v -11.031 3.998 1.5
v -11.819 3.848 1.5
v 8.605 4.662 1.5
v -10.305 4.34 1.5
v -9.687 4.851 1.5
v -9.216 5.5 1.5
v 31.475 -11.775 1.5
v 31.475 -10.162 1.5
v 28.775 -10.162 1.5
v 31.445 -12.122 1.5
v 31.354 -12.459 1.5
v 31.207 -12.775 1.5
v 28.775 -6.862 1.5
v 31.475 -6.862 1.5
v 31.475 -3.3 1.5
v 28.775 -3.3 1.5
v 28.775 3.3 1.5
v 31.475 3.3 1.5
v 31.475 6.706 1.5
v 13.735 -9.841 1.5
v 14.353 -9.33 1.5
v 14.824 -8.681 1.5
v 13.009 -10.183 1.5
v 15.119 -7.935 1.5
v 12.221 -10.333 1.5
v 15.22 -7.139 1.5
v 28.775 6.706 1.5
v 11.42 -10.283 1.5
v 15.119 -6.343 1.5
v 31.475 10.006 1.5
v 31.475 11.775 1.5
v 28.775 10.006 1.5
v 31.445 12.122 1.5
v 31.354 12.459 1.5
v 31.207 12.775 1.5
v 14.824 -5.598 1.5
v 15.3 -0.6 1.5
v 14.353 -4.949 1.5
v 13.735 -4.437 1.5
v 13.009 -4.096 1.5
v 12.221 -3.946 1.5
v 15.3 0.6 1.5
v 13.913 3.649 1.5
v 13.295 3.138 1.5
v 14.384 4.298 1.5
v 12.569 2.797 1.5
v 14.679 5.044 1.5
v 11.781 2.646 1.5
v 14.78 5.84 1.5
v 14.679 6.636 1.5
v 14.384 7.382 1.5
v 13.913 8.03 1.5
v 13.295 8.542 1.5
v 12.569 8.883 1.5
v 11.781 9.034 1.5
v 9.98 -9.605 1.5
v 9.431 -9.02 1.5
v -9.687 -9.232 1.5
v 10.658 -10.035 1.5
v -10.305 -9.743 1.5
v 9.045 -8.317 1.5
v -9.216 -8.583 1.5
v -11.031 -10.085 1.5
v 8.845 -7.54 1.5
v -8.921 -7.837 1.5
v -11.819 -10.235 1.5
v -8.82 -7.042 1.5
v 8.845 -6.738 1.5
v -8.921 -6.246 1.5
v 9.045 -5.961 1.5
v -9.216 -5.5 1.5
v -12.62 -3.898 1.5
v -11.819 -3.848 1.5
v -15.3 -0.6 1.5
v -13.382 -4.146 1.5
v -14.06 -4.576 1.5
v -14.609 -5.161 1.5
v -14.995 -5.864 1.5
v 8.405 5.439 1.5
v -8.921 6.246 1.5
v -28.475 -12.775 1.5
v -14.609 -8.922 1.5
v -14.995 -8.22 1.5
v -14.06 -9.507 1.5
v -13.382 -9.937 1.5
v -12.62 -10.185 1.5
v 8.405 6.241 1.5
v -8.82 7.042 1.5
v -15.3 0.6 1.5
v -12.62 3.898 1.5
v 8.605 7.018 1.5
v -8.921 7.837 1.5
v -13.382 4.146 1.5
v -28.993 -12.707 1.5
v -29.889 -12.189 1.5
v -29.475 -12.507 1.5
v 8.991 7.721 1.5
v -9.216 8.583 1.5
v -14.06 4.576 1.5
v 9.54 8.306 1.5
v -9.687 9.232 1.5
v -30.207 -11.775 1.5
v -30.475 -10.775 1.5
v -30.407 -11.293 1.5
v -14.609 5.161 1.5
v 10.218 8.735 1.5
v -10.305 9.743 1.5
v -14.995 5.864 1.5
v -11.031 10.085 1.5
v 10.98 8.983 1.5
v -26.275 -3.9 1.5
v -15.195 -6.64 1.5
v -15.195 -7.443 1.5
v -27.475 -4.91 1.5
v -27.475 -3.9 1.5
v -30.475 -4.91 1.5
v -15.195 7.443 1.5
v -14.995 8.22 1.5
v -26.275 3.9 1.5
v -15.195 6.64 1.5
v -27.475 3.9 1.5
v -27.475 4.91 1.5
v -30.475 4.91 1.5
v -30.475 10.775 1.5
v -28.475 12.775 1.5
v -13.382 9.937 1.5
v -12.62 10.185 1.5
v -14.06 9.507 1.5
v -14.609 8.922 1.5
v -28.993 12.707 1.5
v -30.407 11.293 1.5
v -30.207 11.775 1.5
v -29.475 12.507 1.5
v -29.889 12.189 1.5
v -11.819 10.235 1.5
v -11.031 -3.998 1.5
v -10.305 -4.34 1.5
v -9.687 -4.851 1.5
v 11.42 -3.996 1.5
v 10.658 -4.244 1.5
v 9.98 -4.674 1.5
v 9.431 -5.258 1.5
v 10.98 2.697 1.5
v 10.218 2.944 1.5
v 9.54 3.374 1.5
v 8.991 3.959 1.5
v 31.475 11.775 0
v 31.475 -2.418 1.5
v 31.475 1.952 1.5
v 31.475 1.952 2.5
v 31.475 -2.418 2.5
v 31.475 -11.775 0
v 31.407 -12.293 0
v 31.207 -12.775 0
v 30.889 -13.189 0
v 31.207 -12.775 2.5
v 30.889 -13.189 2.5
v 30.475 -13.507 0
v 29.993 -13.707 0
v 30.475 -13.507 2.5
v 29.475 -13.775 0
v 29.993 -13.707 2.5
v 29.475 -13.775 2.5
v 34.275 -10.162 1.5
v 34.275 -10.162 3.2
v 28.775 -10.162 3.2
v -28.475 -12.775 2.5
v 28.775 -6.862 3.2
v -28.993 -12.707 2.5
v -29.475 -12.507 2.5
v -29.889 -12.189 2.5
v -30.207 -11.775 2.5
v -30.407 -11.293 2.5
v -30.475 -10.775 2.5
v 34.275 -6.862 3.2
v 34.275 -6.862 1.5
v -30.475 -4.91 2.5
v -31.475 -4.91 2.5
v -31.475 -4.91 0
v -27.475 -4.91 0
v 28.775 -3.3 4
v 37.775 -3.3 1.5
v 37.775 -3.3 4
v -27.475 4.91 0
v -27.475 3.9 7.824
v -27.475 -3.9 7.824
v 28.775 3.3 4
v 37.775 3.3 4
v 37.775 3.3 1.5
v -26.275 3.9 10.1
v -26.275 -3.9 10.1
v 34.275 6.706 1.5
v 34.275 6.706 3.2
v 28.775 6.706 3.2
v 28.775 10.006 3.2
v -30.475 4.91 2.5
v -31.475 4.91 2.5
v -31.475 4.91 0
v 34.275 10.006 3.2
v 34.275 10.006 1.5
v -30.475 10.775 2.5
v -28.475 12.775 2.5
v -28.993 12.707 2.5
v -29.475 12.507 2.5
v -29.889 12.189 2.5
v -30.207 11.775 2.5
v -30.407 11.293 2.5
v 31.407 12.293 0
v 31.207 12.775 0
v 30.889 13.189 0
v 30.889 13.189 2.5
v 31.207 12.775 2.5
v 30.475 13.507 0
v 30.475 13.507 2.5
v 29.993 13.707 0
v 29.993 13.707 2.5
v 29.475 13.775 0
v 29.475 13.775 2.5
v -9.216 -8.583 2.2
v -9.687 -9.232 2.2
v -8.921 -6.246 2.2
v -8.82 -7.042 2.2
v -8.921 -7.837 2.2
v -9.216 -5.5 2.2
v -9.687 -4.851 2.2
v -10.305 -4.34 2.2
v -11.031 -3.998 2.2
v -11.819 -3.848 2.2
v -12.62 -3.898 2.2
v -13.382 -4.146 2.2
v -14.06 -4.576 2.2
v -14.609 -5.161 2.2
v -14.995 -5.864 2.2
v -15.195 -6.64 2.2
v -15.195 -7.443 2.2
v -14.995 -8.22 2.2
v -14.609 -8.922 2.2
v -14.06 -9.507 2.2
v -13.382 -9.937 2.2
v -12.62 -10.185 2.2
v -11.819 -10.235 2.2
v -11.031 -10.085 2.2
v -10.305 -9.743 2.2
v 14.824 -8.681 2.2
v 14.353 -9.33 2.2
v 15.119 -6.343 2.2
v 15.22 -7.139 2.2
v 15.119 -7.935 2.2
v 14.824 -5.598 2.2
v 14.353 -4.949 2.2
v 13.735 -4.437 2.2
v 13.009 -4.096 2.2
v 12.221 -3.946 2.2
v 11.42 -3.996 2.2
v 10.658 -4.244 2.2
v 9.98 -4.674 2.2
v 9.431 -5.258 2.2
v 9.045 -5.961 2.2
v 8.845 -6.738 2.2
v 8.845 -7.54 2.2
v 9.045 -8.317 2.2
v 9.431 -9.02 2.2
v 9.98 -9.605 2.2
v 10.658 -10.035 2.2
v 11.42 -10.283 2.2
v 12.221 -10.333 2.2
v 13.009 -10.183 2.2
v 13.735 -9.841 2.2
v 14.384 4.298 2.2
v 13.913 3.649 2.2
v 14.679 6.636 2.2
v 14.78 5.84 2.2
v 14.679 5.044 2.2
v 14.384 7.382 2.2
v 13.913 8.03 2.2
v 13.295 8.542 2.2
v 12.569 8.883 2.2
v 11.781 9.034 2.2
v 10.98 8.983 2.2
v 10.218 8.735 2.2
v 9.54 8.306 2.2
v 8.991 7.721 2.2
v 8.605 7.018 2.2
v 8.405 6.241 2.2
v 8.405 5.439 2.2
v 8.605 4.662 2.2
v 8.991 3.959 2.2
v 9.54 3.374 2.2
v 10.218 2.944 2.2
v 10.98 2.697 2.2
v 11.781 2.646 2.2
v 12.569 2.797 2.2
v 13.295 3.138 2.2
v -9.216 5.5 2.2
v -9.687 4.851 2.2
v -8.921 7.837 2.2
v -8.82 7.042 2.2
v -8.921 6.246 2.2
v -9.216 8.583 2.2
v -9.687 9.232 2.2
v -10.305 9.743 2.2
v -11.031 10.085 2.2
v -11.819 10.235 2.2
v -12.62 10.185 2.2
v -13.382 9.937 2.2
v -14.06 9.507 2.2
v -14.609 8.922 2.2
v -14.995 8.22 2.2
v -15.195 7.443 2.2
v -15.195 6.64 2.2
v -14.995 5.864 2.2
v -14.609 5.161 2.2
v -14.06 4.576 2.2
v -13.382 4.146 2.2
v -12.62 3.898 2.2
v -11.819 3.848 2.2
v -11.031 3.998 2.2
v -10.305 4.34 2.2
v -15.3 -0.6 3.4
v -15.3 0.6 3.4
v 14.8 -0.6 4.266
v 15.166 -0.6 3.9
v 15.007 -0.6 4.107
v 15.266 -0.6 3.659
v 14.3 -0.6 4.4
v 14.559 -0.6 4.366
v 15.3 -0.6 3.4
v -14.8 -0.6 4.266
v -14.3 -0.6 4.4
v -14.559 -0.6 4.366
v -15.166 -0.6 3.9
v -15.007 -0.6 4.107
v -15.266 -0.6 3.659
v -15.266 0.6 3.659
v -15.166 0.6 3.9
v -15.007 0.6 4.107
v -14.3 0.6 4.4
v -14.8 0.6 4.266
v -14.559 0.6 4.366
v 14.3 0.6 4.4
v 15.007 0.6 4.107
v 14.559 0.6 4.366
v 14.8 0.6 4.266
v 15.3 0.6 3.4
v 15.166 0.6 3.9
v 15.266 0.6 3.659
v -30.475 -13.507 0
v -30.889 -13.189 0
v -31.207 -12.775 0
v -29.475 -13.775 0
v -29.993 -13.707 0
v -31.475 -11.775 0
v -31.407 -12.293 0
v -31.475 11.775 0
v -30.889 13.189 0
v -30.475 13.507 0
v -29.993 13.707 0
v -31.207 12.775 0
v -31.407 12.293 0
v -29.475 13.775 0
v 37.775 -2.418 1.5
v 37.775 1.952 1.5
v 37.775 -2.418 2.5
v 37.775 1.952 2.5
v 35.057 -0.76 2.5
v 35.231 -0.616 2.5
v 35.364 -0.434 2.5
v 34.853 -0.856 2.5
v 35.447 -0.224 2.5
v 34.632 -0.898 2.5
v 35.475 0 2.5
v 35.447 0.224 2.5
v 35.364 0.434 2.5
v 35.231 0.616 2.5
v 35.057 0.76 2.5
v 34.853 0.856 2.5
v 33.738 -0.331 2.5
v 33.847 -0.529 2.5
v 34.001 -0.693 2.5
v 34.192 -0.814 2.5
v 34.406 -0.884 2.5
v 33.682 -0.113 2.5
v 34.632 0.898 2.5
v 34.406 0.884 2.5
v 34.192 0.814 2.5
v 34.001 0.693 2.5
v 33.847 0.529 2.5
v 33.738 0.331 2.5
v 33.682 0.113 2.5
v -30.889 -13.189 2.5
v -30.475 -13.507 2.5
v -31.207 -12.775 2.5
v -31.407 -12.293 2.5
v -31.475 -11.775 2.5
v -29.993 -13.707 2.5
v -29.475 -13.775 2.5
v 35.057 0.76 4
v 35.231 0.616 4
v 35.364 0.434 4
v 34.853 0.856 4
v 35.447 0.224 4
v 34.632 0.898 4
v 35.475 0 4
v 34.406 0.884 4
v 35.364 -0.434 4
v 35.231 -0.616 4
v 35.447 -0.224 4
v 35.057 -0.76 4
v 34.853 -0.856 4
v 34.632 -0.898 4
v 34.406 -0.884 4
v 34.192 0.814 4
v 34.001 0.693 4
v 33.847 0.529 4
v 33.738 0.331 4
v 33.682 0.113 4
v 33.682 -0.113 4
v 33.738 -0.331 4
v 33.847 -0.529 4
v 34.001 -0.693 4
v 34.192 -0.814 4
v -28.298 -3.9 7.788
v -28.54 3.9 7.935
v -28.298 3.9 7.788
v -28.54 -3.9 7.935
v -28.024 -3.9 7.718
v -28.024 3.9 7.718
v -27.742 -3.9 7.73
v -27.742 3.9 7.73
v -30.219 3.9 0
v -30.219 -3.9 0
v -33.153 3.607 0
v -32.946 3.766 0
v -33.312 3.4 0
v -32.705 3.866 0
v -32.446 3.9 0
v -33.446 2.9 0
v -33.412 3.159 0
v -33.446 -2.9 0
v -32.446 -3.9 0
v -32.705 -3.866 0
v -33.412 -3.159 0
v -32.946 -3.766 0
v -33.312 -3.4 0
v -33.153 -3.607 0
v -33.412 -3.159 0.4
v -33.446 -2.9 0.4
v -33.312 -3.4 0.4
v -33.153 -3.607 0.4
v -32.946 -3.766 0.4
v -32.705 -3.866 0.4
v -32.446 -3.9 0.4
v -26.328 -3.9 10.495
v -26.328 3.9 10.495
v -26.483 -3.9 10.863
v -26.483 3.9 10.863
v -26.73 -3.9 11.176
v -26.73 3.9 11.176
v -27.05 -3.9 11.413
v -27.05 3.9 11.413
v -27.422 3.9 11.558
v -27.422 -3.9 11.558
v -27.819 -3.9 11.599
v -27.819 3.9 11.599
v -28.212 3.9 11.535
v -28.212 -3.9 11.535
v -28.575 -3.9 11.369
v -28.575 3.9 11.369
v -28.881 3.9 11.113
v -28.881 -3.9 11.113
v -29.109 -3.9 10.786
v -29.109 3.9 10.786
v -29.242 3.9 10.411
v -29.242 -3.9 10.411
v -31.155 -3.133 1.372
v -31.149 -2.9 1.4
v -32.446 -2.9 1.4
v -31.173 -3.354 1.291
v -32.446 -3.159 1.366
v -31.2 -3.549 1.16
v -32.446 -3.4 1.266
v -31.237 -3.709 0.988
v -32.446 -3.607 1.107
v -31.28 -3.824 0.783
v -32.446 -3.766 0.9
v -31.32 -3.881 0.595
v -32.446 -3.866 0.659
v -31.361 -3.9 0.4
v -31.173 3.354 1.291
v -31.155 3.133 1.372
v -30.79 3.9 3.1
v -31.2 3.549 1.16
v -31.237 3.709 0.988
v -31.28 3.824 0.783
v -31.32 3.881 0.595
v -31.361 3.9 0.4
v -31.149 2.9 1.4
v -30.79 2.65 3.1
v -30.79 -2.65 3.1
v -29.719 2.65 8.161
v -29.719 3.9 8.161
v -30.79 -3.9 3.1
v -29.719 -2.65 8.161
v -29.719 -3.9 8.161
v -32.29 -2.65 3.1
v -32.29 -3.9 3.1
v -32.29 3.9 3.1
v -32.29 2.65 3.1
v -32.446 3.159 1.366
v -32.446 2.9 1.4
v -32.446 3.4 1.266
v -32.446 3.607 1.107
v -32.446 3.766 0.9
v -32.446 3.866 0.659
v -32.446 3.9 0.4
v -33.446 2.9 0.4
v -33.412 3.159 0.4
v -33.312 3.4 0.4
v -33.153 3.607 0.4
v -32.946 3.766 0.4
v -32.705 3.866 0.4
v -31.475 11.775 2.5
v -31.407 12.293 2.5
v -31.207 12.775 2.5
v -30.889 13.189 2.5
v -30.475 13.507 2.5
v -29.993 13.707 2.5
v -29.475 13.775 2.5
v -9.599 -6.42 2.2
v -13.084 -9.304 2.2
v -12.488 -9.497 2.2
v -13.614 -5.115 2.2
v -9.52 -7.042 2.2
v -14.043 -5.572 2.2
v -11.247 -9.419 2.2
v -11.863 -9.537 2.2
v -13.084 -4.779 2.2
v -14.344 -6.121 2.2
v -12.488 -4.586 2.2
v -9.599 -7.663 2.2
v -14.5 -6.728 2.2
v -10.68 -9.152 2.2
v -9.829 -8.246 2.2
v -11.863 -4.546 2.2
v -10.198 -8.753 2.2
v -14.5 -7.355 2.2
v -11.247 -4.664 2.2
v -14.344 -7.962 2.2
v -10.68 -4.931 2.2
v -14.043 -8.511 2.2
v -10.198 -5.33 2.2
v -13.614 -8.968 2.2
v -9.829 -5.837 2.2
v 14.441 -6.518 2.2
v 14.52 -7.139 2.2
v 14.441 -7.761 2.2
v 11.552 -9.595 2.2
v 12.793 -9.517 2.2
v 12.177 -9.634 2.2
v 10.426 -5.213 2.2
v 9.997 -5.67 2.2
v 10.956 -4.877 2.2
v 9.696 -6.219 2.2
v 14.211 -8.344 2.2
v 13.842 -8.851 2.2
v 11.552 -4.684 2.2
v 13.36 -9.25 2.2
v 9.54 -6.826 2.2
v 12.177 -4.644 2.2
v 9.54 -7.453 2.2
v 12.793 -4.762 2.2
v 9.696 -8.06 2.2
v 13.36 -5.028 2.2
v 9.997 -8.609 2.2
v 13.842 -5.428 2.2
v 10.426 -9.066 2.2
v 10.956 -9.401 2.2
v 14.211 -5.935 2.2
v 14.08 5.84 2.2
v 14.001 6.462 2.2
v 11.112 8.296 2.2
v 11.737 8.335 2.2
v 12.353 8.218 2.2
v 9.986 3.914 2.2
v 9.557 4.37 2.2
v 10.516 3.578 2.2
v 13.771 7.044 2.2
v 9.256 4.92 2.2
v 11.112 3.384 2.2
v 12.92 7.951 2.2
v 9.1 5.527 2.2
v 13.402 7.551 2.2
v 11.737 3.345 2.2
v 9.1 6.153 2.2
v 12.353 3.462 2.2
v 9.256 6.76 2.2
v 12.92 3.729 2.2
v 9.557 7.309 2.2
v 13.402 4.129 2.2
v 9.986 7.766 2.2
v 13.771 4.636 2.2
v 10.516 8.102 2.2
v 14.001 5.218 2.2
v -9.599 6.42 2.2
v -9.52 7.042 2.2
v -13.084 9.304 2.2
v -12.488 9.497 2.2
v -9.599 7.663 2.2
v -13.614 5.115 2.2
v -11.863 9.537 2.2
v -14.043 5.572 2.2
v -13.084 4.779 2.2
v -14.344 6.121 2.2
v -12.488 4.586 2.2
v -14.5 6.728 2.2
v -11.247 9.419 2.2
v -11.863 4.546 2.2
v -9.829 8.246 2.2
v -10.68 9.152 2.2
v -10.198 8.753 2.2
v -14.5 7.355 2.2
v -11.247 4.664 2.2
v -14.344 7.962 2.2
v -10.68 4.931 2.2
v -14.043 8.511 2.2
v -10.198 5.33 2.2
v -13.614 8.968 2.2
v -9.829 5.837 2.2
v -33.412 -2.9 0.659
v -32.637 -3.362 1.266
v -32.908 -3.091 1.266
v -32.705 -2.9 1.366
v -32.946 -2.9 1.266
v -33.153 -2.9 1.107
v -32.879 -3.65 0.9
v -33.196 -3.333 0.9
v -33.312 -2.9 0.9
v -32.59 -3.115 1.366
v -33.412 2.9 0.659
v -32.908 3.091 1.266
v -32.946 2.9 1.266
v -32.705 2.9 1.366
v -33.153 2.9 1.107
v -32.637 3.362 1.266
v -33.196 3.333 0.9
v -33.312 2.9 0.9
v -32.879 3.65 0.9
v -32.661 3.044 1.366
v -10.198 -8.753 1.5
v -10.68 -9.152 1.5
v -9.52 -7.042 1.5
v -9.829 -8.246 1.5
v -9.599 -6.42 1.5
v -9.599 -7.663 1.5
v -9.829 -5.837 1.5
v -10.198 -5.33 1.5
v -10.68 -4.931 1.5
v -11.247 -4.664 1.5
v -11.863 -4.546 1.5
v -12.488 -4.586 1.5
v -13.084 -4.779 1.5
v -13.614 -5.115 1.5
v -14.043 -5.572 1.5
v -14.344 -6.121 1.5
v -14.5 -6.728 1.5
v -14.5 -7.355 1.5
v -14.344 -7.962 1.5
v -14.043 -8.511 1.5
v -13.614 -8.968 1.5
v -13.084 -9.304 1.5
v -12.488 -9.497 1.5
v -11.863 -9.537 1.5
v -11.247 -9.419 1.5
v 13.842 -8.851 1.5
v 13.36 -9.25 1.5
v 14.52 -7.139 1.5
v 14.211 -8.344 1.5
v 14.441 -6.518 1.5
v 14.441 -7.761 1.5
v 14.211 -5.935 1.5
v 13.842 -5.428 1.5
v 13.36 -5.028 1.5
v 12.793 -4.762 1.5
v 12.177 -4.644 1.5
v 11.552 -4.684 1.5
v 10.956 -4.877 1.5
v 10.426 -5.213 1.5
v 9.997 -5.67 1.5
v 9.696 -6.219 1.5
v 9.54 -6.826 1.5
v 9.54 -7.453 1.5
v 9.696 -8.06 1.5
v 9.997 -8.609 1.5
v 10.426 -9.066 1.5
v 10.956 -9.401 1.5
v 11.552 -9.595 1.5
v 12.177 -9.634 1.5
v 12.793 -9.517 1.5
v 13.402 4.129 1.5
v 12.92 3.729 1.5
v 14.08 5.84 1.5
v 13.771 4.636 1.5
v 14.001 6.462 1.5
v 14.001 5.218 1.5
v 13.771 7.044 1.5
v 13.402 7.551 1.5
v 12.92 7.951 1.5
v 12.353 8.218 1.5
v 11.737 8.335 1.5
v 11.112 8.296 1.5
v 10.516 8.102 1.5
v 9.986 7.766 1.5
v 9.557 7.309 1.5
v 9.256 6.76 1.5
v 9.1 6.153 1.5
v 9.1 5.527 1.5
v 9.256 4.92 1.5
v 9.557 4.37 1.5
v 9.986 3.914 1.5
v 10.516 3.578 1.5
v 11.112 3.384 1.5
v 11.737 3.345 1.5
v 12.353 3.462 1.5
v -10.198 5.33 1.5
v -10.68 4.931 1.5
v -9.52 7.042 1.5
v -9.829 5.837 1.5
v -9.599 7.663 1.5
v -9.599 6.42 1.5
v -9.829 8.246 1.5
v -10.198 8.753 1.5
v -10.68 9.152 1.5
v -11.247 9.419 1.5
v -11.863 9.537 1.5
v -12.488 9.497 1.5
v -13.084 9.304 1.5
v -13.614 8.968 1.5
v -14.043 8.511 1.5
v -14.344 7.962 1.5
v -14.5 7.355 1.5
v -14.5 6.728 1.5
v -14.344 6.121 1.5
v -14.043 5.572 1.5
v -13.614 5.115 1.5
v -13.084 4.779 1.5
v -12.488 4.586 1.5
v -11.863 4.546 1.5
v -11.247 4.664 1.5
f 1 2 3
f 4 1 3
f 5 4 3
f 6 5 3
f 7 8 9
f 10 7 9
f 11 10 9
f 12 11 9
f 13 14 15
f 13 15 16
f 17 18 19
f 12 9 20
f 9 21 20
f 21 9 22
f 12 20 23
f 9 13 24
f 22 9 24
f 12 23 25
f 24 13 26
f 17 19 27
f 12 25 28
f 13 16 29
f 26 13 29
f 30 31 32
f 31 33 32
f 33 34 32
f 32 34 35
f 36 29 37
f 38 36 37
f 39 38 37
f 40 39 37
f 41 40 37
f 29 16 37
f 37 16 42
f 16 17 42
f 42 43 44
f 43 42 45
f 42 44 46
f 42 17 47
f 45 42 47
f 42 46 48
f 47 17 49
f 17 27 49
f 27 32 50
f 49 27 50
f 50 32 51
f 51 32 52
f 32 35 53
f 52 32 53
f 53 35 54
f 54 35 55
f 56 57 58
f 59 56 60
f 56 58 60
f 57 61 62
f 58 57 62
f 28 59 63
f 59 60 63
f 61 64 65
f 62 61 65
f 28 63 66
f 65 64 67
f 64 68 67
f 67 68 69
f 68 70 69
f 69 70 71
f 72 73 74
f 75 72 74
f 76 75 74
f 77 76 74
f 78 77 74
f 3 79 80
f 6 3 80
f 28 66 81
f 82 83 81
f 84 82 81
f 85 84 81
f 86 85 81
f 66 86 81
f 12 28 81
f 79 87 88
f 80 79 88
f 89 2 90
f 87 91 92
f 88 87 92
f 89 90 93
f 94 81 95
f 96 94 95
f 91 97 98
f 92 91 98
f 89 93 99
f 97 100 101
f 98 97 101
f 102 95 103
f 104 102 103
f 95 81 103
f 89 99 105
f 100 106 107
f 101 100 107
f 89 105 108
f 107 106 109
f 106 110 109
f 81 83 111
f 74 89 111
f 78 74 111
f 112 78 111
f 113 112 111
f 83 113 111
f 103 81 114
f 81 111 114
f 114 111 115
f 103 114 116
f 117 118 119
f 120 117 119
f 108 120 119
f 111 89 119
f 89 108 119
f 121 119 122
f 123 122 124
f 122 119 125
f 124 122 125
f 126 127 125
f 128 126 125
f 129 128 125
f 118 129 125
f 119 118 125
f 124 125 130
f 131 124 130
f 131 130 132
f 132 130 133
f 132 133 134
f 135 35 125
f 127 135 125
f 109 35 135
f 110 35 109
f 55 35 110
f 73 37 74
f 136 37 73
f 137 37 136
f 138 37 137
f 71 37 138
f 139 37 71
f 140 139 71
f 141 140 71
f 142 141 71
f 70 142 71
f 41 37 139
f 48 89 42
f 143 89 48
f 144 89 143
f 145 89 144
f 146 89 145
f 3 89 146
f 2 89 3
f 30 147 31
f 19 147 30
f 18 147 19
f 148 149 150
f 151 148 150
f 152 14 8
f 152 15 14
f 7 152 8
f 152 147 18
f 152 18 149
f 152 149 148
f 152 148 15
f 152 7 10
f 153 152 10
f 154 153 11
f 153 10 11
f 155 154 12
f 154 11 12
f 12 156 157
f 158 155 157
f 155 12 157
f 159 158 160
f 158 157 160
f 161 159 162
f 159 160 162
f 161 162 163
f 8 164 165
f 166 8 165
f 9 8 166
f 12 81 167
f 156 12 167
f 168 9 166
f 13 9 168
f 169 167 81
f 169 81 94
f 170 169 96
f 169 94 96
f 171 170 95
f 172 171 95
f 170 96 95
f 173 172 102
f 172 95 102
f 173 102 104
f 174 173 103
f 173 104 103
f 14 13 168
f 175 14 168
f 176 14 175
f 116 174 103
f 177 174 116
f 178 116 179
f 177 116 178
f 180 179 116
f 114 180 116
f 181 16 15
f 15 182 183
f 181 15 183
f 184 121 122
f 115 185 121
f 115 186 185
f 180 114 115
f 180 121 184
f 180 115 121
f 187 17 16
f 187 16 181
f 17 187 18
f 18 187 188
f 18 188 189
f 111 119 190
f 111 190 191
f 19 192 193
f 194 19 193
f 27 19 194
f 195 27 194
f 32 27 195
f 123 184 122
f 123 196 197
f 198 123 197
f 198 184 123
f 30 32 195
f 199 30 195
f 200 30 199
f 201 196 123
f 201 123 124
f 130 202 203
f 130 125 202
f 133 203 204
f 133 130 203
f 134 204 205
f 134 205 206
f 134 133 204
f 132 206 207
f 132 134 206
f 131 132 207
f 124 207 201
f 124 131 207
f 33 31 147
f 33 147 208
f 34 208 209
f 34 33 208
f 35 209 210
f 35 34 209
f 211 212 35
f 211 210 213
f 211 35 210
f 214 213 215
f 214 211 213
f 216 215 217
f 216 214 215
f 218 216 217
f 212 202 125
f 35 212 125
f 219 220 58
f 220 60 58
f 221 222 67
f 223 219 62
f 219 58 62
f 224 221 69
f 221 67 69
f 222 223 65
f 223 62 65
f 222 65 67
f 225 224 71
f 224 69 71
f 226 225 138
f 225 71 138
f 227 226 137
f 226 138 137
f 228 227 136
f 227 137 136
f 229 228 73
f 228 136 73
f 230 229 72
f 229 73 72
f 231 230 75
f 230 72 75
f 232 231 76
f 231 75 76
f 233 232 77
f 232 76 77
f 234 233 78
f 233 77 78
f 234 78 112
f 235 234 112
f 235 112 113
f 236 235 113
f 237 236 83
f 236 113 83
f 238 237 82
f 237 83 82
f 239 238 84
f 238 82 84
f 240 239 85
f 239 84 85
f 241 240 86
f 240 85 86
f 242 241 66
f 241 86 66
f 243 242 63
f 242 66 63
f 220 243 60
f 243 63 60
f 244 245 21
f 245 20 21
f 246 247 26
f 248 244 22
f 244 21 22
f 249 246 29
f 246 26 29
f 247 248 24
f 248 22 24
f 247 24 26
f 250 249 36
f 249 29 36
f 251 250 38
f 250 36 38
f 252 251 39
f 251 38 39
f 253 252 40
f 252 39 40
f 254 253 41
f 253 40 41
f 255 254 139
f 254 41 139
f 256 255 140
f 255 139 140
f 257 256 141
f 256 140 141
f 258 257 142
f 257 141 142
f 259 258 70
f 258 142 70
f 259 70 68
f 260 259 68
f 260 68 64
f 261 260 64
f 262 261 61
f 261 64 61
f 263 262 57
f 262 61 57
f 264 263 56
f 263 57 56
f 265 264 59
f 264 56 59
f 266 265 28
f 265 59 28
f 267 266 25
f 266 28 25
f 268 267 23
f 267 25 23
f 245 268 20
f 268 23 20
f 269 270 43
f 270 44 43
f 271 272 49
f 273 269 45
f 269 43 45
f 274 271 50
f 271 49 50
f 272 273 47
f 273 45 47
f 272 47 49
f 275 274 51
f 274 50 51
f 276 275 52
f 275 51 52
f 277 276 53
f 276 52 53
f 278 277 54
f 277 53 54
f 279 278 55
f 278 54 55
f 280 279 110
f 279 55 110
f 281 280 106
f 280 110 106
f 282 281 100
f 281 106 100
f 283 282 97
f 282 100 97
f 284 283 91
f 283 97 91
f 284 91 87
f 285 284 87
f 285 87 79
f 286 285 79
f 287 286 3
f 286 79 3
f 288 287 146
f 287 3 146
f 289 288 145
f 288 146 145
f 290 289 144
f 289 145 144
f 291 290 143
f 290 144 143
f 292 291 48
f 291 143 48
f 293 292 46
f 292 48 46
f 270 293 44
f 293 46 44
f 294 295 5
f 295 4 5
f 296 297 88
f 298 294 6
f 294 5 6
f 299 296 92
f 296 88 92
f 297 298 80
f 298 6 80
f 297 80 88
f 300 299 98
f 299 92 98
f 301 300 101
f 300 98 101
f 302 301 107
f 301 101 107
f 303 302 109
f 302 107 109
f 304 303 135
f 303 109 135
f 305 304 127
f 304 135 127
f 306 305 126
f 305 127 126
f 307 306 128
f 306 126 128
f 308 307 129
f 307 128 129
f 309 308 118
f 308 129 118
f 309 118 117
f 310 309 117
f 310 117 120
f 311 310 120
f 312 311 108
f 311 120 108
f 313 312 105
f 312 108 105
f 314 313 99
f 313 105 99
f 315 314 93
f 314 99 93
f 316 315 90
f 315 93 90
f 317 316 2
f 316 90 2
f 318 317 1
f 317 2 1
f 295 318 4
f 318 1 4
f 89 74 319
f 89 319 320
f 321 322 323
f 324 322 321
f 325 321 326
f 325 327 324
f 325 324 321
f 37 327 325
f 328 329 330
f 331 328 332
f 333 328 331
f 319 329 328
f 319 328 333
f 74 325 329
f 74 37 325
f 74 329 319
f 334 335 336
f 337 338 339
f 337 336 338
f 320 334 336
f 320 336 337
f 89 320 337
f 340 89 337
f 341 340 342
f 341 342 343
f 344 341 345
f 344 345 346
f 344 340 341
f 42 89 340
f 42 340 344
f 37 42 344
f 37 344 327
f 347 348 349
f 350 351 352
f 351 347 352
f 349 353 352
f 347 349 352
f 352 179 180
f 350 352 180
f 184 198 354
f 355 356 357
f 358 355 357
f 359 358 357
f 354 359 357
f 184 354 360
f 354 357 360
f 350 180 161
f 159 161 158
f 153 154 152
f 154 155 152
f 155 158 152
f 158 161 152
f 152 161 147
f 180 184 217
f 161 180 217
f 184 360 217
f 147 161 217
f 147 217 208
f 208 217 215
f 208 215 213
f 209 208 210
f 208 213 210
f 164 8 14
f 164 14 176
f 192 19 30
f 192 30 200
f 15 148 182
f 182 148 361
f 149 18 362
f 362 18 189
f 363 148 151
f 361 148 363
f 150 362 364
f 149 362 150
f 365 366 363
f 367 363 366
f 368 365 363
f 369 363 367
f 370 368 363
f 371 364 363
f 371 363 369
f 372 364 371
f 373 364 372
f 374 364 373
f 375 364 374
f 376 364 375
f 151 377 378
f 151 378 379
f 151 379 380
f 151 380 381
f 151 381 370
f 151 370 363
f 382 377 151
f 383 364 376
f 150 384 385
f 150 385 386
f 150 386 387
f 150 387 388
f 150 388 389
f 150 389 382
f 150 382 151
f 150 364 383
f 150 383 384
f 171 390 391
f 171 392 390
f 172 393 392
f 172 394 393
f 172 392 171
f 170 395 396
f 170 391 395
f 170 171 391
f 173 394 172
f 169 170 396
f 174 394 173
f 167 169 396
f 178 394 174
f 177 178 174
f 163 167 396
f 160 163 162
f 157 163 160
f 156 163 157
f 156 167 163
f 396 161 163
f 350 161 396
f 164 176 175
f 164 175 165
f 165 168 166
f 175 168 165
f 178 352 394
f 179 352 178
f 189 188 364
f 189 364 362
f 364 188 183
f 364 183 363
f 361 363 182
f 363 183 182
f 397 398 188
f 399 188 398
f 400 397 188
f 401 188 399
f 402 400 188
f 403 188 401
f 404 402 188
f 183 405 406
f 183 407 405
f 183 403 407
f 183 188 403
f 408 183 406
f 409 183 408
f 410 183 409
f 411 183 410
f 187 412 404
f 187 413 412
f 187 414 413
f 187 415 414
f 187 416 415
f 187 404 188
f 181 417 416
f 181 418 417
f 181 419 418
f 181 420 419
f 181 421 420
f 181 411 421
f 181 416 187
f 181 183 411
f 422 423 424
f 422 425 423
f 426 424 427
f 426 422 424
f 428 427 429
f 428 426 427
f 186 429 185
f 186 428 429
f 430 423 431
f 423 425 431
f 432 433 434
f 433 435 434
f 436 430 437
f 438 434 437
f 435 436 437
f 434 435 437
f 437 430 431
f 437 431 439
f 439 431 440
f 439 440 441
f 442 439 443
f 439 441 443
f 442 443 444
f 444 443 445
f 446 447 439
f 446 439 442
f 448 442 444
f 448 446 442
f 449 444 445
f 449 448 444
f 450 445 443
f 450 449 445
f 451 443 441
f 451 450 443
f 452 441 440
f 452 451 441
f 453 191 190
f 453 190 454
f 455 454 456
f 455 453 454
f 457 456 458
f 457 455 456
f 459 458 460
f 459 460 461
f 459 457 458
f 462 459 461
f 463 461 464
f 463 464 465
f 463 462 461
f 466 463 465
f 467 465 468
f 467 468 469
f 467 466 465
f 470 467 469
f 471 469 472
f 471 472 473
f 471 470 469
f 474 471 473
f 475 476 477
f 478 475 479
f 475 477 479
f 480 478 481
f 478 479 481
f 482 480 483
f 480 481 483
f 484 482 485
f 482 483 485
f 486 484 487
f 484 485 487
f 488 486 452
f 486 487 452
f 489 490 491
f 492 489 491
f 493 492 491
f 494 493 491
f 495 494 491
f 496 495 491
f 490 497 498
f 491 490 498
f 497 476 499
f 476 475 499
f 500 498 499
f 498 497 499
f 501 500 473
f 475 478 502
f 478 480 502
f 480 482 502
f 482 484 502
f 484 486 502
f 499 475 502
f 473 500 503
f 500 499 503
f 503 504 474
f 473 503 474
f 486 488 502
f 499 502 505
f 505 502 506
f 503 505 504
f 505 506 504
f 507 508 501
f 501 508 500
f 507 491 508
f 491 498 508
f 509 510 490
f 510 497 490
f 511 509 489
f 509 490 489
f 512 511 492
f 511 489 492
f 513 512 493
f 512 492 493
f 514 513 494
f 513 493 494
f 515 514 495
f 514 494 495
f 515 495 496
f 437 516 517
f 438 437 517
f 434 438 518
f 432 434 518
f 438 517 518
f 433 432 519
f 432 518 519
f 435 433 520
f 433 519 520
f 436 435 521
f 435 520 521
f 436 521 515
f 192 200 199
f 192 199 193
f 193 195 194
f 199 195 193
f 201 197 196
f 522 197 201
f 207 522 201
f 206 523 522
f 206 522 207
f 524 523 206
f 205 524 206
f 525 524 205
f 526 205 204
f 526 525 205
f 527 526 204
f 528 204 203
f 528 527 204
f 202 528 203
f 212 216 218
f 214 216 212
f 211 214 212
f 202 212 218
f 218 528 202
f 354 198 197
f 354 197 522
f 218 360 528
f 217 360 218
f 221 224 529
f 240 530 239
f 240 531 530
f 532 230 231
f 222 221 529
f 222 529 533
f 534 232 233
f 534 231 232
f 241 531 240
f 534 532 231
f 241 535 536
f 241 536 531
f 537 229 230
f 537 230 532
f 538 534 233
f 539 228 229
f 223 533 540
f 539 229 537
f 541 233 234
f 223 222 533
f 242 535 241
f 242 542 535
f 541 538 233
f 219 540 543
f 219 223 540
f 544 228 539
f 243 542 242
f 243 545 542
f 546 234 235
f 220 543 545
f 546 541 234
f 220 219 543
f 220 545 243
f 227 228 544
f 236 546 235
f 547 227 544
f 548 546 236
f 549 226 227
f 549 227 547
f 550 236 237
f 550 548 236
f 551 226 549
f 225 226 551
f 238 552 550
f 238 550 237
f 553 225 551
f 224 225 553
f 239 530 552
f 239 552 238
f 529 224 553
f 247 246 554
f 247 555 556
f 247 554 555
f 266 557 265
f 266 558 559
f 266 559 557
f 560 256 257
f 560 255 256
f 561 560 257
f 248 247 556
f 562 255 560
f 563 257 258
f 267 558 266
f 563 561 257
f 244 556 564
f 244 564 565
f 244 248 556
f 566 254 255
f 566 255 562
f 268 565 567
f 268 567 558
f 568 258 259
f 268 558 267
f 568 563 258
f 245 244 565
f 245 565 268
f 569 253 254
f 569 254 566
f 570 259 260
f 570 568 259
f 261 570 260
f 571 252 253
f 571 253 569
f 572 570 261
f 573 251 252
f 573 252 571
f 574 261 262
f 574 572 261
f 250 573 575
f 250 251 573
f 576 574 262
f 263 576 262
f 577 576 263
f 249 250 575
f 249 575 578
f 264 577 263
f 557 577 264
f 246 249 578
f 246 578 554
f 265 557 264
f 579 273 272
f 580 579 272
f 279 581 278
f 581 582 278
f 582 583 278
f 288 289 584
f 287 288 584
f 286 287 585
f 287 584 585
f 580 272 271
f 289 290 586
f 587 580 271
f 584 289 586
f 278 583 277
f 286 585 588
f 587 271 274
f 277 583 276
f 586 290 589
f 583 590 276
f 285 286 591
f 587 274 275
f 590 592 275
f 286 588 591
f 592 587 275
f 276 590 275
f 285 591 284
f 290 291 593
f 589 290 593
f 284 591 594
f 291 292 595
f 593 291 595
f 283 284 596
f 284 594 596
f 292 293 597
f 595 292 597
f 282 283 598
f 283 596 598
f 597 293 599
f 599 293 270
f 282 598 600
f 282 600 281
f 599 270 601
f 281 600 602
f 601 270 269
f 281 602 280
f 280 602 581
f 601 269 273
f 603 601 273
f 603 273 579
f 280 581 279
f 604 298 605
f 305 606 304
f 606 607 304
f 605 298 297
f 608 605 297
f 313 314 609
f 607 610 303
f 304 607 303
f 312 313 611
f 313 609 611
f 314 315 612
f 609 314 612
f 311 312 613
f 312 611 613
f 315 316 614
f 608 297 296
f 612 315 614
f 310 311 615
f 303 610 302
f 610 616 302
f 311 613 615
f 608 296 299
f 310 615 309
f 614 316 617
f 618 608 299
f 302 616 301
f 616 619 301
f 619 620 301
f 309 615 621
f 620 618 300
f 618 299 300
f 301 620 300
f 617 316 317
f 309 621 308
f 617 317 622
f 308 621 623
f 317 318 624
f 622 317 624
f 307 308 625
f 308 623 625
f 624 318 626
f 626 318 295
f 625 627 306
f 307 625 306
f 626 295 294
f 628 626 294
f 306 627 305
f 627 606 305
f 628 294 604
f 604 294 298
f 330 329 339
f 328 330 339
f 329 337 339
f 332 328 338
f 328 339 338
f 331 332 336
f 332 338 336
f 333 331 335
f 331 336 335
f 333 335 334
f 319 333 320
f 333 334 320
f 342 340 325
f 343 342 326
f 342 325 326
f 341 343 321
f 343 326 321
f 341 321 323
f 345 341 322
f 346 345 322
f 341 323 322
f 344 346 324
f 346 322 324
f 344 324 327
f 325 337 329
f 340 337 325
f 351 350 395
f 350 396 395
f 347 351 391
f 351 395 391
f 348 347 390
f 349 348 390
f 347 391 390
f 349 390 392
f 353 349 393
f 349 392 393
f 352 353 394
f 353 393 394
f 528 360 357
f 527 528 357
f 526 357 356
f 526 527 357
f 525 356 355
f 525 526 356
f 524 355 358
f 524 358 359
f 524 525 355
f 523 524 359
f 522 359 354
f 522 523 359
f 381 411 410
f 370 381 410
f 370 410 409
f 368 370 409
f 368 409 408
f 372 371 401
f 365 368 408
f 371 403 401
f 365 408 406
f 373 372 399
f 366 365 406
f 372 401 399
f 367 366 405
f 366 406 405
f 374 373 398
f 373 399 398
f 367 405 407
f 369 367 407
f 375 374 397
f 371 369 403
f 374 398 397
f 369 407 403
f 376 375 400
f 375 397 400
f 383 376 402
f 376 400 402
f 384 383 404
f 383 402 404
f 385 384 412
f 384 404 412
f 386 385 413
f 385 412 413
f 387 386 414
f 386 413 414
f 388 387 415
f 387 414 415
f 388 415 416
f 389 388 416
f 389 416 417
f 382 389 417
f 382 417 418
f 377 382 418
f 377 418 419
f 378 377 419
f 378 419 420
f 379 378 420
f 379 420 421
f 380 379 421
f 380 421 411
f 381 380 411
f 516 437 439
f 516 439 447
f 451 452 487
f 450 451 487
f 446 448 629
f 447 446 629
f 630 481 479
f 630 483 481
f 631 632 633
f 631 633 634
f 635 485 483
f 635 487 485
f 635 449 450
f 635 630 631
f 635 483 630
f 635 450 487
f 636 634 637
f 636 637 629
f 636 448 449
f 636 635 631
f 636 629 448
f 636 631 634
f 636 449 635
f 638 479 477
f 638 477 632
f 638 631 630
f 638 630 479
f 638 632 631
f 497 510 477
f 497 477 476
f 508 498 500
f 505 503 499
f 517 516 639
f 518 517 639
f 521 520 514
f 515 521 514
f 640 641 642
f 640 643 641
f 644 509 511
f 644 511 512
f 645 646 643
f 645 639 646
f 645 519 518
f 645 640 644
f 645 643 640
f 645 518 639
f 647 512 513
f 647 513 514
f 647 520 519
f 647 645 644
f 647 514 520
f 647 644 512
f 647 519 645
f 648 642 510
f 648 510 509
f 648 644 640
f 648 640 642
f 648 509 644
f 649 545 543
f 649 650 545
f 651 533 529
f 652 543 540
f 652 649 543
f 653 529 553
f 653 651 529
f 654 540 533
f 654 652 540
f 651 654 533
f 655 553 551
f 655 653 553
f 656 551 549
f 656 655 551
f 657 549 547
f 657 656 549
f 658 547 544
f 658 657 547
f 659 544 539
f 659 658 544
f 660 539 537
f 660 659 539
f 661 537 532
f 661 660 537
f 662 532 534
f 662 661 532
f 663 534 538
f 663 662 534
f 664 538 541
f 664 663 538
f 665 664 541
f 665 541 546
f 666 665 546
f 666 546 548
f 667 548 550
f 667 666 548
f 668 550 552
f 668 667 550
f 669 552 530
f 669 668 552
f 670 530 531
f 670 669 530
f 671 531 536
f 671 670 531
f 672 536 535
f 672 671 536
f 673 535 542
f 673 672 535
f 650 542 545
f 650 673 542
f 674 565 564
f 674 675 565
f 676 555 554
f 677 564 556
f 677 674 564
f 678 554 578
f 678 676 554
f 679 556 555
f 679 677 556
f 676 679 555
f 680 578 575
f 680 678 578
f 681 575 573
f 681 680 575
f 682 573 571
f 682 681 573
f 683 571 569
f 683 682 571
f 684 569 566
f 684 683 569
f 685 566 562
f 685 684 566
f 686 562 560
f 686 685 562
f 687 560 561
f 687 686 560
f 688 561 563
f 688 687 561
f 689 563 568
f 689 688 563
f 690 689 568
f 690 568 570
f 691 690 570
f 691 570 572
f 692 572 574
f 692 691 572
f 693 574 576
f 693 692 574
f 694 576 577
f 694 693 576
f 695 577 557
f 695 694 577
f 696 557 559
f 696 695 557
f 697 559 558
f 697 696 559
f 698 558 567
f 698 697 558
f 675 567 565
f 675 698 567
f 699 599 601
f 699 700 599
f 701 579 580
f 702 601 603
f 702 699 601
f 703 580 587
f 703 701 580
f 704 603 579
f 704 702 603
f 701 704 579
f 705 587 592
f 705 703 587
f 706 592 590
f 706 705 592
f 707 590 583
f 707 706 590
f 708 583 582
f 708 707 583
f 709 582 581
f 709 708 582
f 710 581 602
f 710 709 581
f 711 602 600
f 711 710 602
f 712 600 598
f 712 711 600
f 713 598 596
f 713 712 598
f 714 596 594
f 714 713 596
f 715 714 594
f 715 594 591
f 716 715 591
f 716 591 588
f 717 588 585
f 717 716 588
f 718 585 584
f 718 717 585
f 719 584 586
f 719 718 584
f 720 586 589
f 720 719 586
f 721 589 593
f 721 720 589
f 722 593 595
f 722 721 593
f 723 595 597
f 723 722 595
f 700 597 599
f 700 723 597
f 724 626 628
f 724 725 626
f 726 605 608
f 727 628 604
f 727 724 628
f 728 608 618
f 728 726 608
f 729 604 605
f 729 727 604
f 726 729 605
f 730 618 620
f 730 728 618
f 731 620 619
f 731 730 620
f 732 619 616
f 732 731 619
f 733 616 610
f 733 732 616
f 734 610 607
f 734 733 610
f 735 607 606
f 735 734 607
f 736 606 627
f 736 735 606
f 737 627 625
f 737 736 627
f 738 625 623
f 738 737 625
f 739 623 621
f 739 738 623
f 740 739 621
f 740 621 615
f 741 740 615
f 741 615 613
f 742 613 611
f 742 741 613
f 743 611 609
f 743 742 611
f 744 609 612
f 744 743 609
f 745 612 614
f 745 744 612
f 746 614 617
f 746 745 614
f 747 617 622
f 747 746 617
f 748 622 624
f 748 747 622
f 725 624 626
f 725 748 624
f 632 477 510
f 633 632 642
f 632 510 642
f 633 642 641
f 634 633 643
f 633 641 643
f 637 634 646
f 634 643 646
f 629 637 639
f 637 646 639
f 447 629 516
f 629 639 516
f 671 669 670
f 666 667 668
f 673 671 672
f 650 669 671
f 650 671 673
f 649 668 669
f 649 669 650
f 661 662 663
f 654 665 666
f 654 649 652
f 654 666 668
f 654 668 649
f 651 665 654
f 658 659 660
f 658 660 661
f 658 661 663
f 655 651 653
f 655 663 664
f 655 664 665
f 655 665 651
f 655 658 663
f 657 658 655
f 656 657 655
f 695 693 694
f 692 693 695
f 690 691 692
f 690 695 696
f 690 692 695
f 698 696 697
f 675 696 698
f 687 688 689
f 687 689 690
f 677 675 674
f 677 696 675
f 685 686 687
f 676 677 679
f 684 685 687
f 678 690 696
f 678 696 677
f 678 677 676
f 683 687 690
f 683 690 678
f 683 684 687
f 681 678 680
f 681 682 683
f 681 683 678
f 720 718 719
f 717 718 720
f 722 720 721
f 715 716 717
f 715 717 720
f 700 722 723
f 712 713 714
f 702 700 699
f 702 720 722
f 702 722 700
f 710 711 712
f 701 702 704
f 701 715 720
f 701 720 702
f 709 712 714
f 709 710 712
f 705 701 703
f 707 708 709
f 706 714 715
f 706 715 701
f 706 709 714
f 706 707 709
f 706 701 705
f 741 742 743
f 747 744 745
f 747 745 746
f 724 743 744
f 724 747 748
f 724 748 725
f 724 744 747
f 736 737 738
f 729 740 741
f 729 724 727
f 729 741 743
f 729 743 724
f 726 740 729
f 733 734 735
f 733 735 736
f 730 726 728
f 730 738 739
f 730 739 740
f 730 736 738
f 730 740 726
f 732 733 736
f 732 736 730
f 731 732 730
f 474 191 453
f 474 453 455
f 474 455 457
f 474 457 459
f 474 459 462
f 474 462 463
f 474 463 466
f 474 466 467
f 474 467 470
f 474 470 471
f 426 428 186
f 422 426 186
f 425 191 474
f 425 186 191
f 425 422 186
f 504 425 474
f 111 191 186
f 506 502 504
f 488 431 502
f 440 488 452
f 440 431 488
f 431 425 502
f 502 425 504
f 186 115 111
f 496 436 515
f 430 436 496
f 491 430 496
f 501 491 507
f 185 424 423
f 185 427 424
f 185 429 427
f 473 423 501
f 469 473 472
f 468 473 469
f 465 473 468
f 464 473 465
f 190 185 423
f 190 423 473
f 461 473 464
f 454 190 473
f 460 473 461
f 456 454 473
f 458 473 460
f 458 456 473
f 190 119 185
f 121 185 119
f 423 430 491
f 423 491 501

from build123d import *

# Parameters (mm, degrees)
SKETCH_W        = 62.95
SKETCH_H        = 27.55
PAD_DEPTH       = 2.5
SKETCH001_W     = 60.95
SKETCH001_H     = 25.55
POCKET_DEPTH    = 1
SKETCH002_W     = 8.33494
SKETCH002_H     = 9.82
POCKET001_DEPTH = 5
SKETCH003_W     = 25.55
SKETCH003_H     = 4.198582
POCKET002_DEPTH = 5
SKETCH004_W     = 5.5
SKETCH004_H     = 3.3
SKETCH004_W_2   = 9
SKETCH004_H_2   = 6.6
PAD001_DEPTH    = 1.7
SKETCH005_W     = 9
SKETCH005_H     = 6.6
PAD002_DEPTH    = 1.5
SKETCH006_W     = 11.41477
SKETCH006_H     = 4.37
POCKET003_DEPTH = 1
SKETCH007_R     = 0.9
POCKET004_DEPTH = 5
FILLET_R        = 2
FILLET001_R     = 2
SKETCH008_W     = 30.6
SKETCH008_H     = 1.2
PAD003_DEPTH    = 2.9
FILLET002_R     = 1
SKETCH009_R     = 3.2
SKETCH009_R_2   = 2.5
PAD004_DEPTH    = 1.2
SKETCH010_W     = 1.2
SKETCH010_H     = 9.82
PAD005_DEPTH    = 8.6
PAD006_DEPTH    = 9.8
SKETCH012_W     = 1.01
SKETCH012_H     = 12.1592368492
POCKET005_DEPTH = 5
SKETCH013_W     = 1.919350973
SKETCH013_H     = 0.99
SKETCH013_W_2   = 2.016565973
SKETCH013_H_2   = 1.01
POCKET006_DEPTH = 5
SKETCH014_W     = 3.22658
SKETCH014_H     = 1.4
PAD007_DEPTH    = 7.8
FILLET003_R     = 1
FILLET004_R     = 1
PAD008_DEPTH    = 7.8
SKETCH016_W     = 5.3
SKETCH016_H     = 6.908861
POCKET007_DEPTH = 5
SKETCH017_W     = 7.346396
SKETCH017_H     = 1.27086
POCKET008_DEPTH = 12
FILLET005_R     = 2
FILLET006_R     = 2
SKETCH018_W     = 8.422166
SKETCH018_H     = 10.199767
POCKET009_DEPTH = 31
SKETCH019_R     = 1.5
PAD009_DEPTH    = 7.8
SKETCH020_W     = 10.078106
SKETCH020_H     = 1.351365
POCKET010_DEPTH = 17.076
SKETCH021_R     = 0.9644956182
PAD010_DEPTH    = 7.8


with BuildPart() as part:
    # Sketch → Pad (new body)
    with BuildSketch(Plane.XY):
        Rectangle(SKETCH_W, SKETCH_H)
    extrude(amount=PAD_DEPTH)

    # Sketch001 → Pocket (cut)
    with BuildSketch(Plane.XY.offset(2.5)):
        Rectangle(SKETCH001_W, SKETCH001_H)
    extrude(amount=-POCKET_DEPTH, mode=Mode.SUBTRACT)

    # Sketch002 → Pocket001 (cut)
    with BuildSketch(Plane(origin=(0, 0, 0), x_dir=(1, 0, 0), z_dir=(0, 0, -1))):
        with Locations((-31.64247, 0)):
            Rectangle(SKETCH002_W, SKETCH002_H)
    extrude(amount=-POCKET001_DEPTH, mode=Mode.SUBTRACT)

    # Sketch003 → Pocket002 (cut)
    with BuildSketch(Plane(origin=(30.475, 0, 0), x_dir=(0, -1, 0), z_dir=(-1, 0, 0))):
        with Locations((0, 3.599291)):
            Rectangle(SKETCH003_W, SKETCH003_H)
    extrude(amount=-POCKET002_DEPTH, mode=Mode.SUBTRACT)

    # Sketch004 → Pad001 (new body)
    with BuildSketch(Plane.XY.offset(1.5)):
        with Locations((31.525, 8.3558943219)):
            Rectangle(SKETCH004_W, SKETCH004_H)
        with Locations((31.525, -8.5122186382)):
            Rectangle(SKETCH004_W, SKETCH004_H)
        with Locations((33.275, 0)):
            Rectangle(SKETCH004_W_2, SKETCH004_H_2)
    extrude(amount=PAD001_DEPTH)

    # Sketch005 → Pad002 (new body)
    with BuildSketch(Plane.XY.offset(3.2)):
        with Locations((33.275, 0)):
            Rectangle(SKETCH005_W, SKETCH005_H)
    extrude(amount=PAD002_DEPTH)

    # Sketch006 → Pocket003 (cut)
    with BuildSketch(Plane(origin=(0, 0, 1.5), x_dir=(1, 0, 0), z_dir=(0, 0, -1))):
        with Locations((37.182385, 0.2334771648)):
            Rectangle(SKETCH006_W, SKETCH006_H)
    extrude(amount=-POCKET003_DEPTH, mode=Mode.SUBTRACT)

    # Sketch007 → Pocket004 (cut)
    with BuildSketch(Plane.XY.offset(4.7)):
        with Locations((34.575, 0)):
            Circle(SKETCH007_R)
    extrude(amount=-POCKET004_DEPTH, mode=Mode.SUBTRACT)

    # Fillet
    fillet_edges = [part.edges().sort_by_distance(p)[0] for p in [
        (-31.475, 13.775, 1.25),
        (-31.475, -13.775, 1.25),
    ]]
    fillet(fillet_edges, radius=FILLET_R)

    # Fillet001
    fillet001_edges = [part.edges().sort_by_distance(p)[0] for p in [
        (-30.475, 12.775, 2),
        (-30.475, -12.775, 2),
    ]]
    fillet(fillet001_edges, radius=FILLET001_R)

    # Sketch008 → Pad003 (new body)
    with BuildSketch(Plane.XY.offset(1.5)):
        Rectangle(SKETCH008_W, SKETCH008_H)
    extrude(amount=PAD003_DEPTH)

    # Fillet002
    fillet002_edges = [part.edges().sort_by_distance(p)[0] for p in [
        (15.3, 0, 4.4),
        (-15.3, 0, 4.4),
    ]]
    fillet(fillet002_edges, radius=FILLET002_R)

    # Sketch009 → Pad004 (new body)
    with BuildSketch(Plane.XY.offset(1.5)):
        with Locations((-12.019986846, 7.041554)):
            Circle(SKETCH009_R)
        with Locations((-12.019986846, 7.041554)):
            Circle(SKETCH009_R_2, mode=Mode.SUBTRACT)
        with Locations((11.580013154, 5.839929)):
            Circle(SKETCH009_R)
        with Locations((11.580013154, 5.839929)):
            Circle(SKETCH009_R_2, mode=Mode.SUBTRACT)
        with Locations((12.019994, -7.139266)):
            Circle(SKETCH009_R)
        with Locations((12.019994, -7.139266)):
            Circle(SKETCH009_R_2, mode=Mode.SUBTRACT)
        with Locations((-12.019986846, -7.041554)):
            Circle(SKETCH009_R)
        with Locations((-12.019986846, -7.041554)):
            Circle(SKETCH009_R_2, mode=Mode.SUBTRACT)
    extrude(amount=PAD004_DEPTH)

    # Sketch010 → Pad005 (new body)
    with BuildSketch(Plane.XY.offset(1.5)):
        with Locations((-26.875, 0)):
            Rectangle(SKETCH010_W, SKETCH010_H)
    extrude(amount=PAD005_DEPTH)

    # Sketch011 → Pad006 (new body)
    with BuildSketch(Plane.XZ.offset(4.91)):
        with BuildLine():
            ThreePointArc((-26.275, 10.1), (-27.6188640233, 11.5918517208), (-29.242495409, 10.410575634))
            Line((-29.242495409, 10.410575634), (-31.4457534602, 0))
            Line((-30.2191738146, 0), (-31.4457534602, 0))
            Line((-28.0684990822, 10.1621151248), (-30.2191738146, 0))
            ThreePointArc((-27.475, 10.1), (-27.7437728057, 10.3983703443), (-28.0684990822, 10.1621151248))
            Line((-26.275, 10.1), (-27.475, 10.1))
        make_face()
    extrude(amount=-PAD006_DEPTH)

    # Sketch012 → Pocket005 (cut)
    with BuildSketch(Plane.YZ.offset(-26.275)):
        with Locations((-4.405, 7.5796184246)):
            Rectangle(SKETCH012_W, SKETCH012_H)
        with Locations((4.405, 7.5796184246)):
            Rectangle(SKETCH012_W, SKETCH012_H)
    extrude(amount=-POCKET005_DEPTH, mode=Mode.SUBTRACT)

    # Sketch013 → Pocket006 (cut)
    with BuildSketch(Plane.XY.offset(1.5)):
        with Locations((-30.8613945135, 4.395)):
            Rectangle(SKETCH013_W, SKETCH013_H)
        with Locations((-30.9100020135, -4.405)):
            Rectangle(SKETCH013_W_2, SKETCH013_H_2)
    extrude(amount=-POCKET006_DEPTH, mode=Mode.SUBTRACT)

    # Sketch014 → Pad007 (new body)
    with BuildSketch(Plane.XZ.offset(3.9)):
        with Locations((-31.8324638146, 0.7)):
            Rectangle(SKETCH014_W, SKETCH014_H)
    extrude(amount=-PAD007_DEPTH)

    # Fillet003
    fillet003_edges = [part.edges().sort_by_distance(p)[0] for p in [
        (-33.445754, -3.9, 0.7),
        (-33.445754, 3.9, 0.7),
    ]]
    fillet(fillet003_edges, radius=FILLET003_R)

    # Fillet004
    fillet004_edges = [part.edges().sort_by_distance(p)[0] for p in [
        (-33.445754, 0, 1.4),
    ]]
    fillet(fillet004_edges, radius=FILLET004_R)

    # Sketch015 → Pad008 (new body)
    with BuildSketch(Plane.XZ.offset(3.9)):
        Polygon((-30.7896802325, 3.1), (-32.2896802325, 3.1), (-29.7186114617, 8.1608880977), align=None)
    extrude(amount=-PAD008_DEPTH)

    # Sketch016 → Pocket007 (cut)
    with BuildSketch(Plane(origin=(-30.0976779028, 0, 6.3697679641), x_dir=(0, -1, 0), z_dir=(-0.9783302734, 0, 0.2070504194))):
        with Locations((0, -1.0484965)):
            Rectangle(SKETCH016_W, SKETCH016_H)
    extrude(amount=POCKET007_DEPTH, mode=Mode.SUBTRACT)

    # Sketch017 → Pocket008 (cut)
    with BuildSketch(Plane.YZ.offset(37.775)):
        with Locations((0.176766, 5.13543)):
            Rectangle(SKETCH017_W, SKETCH017_H)
    extrude(amount=-POCKET008_DEPTH, mode=Mode.SUBTRACT)

    # Fillet005
    fillet005_edges = [part.edges().sort_by_distance(p)[0] for p in [
        (31.475, 13.775, 1.25),
    ]]
    fillet(fillet005_edges, radius=FILLET005_R)

    # Fillet006
    fillet006_edges = [part.edges().sort_by_distance(p)[0] for p in [
        (31.475, -13.775, 1.25),
    ]]
    fillet(fillet006_edges, radius=FILLET006_R)

    # Sketch018 → Pocket009 (cut)
    with BuildSketch(Plane.YZ.offset(15.3)):
        with Locations((-6.727006, 7.2998835)):
            Rectangle(SKETCH018_W, SKETCH018_H)
        with Locations((6.727006, 7.2998835)):
            Rectangle(SKETCH018_W, SKETCH018_H)
    extrude(amount=-POCKET009_DEPTH, mode=Mode.SUBTRACT)

    # Sketch019 → Pad009 (new body)
    with BuildSketch(Plane.XZ.offset(3.9)):
        with Locations((-27.775, 10.1)):
            Circle(SKETCH019_R)
    extrude(amount=-PAD009_DEPTH)

    # Sketch020 → Pocket010 (cut, through all)
    with BuildSketch(Plane.XZ.offset(3.3)):
        with Locations((33.352842, 4.6756825)):
            Rectangle(SKETCH020_W, SKETCH020_H)
    extrude(amount=-POCKET010_DEPTH, mode=Mode.SUBTRACT)

    # Sketch021 → Pad010 (new body)
    with BuildSketch(Plane.XZ.offset(3.9)):
        with Locations((-27.9238999046, 8.6772876492)):
            Circle(SKETCH021_R)
    extrude(amount=-PAD010_DEPTH)


solid = part.part
